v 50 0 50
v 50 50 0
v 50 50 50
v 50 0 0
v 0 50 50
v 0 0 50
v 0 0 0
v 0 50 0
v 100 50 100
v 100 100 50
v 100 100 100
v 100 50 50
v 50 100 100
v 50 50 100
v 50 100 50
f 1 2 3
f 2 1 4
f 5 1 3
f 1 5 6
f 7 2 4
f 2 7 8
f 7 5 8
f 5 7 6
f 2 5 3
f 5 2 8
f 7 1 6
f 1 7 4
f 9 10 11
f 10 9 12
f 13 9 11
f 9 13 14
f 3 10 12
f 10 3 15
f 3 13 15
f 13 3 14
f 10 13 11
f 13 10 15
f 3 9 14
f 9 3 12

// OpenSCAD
// Length
length = 50;

// Radius
radius = 10;

// Offset from center
offset = length;

difference() {
  union() {
    // Main body
    cube([length, length, length]);

    // Offset
    translate([offset, offset, offset])
    cube([length, length, length]);
  }
}
